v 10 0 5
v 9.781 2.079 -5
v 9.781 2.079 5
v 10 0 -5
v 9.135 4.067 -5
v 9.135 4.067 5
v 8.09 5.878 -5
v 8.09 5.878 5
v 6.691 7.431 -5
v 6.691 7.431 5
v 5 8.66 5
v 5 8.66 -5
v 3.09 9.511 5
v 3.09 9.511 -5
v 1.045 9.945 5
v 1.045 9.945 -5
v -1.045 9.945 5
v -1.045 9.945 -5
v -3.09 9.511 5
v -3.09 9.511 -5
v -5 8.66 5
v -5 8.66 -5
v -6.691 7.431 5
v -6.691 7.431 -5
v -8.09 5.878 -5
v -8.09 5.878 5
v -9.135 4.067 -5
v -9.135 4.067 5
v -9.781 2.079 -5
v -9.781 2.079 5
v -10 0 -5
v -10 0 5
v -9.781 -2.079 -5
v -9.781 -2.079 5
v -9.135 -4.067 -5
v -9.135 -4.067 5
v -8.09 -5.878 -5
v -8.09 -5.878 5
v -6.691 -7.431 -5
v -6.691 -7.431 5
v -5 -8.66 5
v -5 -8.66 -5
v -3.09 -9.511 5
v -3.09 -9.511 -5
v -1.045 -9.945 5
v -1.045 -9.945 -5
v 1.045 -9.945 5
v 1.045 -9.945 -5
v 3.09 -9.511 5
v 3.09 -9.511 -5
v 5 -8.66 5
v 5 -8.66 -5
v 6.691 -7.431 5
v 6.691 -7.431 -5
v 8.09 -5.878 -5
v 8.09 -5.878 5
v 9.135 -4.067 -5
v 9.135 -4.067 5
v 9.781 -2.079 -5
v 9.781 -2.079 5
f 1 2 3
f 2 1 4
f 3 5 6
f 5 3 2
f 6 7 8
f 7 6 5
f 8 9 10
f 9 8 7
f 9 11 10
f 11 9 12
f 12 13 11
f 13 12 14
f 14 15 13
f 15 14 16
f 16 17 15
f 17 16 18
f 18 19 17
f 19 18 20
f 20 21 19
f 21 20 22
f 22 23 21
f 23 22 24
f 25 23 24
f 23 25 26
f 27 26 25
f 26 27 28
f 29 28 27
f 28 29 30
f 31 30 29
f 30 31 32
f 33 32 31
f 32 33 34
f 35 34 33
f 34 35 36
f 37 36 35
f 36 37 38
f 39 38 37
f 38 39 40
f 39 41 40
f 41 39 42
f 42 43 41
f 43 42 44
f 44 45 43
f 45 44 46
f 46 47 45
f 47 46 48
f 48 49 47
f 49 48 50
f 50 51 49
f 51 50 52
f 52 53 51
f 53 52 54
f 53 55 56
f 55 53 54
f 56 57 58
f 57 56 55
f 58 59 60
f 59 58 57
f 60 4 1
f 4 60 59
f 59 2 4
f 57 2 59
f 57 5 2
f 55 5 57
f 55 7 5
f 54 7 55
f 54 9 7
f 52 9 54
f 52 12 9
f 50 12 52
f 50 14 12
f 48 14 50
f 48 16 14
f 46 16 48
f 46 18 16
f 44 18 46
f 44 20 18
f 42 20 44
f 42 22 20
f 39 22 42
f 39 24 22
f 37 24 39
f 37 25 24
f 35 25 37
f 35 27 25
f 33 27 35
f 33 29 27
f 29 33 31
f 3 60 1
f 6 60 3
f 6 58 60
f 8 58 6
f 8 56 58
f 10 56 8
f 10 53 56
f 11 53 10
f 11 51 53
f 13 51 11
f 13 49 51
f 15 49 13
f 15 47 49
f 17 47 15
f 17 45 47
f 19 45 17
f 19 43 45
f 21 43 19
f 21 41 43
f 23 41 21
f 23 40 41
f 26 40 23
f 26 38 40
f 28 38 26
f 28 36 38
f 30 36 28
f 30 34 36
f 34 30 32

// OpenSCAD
// Parameters for the central cylinder
cylinder_diameter = 20; // Diameter of the cylinder
cylinder_height = 10;   // Height of the cylinder

// Central cylinder
module central_cylinder() {
    cylinder(h = cylinder_height, d = cylinder_diameter, center = true);
}

// Render the central cylinder
central_cylinder();
